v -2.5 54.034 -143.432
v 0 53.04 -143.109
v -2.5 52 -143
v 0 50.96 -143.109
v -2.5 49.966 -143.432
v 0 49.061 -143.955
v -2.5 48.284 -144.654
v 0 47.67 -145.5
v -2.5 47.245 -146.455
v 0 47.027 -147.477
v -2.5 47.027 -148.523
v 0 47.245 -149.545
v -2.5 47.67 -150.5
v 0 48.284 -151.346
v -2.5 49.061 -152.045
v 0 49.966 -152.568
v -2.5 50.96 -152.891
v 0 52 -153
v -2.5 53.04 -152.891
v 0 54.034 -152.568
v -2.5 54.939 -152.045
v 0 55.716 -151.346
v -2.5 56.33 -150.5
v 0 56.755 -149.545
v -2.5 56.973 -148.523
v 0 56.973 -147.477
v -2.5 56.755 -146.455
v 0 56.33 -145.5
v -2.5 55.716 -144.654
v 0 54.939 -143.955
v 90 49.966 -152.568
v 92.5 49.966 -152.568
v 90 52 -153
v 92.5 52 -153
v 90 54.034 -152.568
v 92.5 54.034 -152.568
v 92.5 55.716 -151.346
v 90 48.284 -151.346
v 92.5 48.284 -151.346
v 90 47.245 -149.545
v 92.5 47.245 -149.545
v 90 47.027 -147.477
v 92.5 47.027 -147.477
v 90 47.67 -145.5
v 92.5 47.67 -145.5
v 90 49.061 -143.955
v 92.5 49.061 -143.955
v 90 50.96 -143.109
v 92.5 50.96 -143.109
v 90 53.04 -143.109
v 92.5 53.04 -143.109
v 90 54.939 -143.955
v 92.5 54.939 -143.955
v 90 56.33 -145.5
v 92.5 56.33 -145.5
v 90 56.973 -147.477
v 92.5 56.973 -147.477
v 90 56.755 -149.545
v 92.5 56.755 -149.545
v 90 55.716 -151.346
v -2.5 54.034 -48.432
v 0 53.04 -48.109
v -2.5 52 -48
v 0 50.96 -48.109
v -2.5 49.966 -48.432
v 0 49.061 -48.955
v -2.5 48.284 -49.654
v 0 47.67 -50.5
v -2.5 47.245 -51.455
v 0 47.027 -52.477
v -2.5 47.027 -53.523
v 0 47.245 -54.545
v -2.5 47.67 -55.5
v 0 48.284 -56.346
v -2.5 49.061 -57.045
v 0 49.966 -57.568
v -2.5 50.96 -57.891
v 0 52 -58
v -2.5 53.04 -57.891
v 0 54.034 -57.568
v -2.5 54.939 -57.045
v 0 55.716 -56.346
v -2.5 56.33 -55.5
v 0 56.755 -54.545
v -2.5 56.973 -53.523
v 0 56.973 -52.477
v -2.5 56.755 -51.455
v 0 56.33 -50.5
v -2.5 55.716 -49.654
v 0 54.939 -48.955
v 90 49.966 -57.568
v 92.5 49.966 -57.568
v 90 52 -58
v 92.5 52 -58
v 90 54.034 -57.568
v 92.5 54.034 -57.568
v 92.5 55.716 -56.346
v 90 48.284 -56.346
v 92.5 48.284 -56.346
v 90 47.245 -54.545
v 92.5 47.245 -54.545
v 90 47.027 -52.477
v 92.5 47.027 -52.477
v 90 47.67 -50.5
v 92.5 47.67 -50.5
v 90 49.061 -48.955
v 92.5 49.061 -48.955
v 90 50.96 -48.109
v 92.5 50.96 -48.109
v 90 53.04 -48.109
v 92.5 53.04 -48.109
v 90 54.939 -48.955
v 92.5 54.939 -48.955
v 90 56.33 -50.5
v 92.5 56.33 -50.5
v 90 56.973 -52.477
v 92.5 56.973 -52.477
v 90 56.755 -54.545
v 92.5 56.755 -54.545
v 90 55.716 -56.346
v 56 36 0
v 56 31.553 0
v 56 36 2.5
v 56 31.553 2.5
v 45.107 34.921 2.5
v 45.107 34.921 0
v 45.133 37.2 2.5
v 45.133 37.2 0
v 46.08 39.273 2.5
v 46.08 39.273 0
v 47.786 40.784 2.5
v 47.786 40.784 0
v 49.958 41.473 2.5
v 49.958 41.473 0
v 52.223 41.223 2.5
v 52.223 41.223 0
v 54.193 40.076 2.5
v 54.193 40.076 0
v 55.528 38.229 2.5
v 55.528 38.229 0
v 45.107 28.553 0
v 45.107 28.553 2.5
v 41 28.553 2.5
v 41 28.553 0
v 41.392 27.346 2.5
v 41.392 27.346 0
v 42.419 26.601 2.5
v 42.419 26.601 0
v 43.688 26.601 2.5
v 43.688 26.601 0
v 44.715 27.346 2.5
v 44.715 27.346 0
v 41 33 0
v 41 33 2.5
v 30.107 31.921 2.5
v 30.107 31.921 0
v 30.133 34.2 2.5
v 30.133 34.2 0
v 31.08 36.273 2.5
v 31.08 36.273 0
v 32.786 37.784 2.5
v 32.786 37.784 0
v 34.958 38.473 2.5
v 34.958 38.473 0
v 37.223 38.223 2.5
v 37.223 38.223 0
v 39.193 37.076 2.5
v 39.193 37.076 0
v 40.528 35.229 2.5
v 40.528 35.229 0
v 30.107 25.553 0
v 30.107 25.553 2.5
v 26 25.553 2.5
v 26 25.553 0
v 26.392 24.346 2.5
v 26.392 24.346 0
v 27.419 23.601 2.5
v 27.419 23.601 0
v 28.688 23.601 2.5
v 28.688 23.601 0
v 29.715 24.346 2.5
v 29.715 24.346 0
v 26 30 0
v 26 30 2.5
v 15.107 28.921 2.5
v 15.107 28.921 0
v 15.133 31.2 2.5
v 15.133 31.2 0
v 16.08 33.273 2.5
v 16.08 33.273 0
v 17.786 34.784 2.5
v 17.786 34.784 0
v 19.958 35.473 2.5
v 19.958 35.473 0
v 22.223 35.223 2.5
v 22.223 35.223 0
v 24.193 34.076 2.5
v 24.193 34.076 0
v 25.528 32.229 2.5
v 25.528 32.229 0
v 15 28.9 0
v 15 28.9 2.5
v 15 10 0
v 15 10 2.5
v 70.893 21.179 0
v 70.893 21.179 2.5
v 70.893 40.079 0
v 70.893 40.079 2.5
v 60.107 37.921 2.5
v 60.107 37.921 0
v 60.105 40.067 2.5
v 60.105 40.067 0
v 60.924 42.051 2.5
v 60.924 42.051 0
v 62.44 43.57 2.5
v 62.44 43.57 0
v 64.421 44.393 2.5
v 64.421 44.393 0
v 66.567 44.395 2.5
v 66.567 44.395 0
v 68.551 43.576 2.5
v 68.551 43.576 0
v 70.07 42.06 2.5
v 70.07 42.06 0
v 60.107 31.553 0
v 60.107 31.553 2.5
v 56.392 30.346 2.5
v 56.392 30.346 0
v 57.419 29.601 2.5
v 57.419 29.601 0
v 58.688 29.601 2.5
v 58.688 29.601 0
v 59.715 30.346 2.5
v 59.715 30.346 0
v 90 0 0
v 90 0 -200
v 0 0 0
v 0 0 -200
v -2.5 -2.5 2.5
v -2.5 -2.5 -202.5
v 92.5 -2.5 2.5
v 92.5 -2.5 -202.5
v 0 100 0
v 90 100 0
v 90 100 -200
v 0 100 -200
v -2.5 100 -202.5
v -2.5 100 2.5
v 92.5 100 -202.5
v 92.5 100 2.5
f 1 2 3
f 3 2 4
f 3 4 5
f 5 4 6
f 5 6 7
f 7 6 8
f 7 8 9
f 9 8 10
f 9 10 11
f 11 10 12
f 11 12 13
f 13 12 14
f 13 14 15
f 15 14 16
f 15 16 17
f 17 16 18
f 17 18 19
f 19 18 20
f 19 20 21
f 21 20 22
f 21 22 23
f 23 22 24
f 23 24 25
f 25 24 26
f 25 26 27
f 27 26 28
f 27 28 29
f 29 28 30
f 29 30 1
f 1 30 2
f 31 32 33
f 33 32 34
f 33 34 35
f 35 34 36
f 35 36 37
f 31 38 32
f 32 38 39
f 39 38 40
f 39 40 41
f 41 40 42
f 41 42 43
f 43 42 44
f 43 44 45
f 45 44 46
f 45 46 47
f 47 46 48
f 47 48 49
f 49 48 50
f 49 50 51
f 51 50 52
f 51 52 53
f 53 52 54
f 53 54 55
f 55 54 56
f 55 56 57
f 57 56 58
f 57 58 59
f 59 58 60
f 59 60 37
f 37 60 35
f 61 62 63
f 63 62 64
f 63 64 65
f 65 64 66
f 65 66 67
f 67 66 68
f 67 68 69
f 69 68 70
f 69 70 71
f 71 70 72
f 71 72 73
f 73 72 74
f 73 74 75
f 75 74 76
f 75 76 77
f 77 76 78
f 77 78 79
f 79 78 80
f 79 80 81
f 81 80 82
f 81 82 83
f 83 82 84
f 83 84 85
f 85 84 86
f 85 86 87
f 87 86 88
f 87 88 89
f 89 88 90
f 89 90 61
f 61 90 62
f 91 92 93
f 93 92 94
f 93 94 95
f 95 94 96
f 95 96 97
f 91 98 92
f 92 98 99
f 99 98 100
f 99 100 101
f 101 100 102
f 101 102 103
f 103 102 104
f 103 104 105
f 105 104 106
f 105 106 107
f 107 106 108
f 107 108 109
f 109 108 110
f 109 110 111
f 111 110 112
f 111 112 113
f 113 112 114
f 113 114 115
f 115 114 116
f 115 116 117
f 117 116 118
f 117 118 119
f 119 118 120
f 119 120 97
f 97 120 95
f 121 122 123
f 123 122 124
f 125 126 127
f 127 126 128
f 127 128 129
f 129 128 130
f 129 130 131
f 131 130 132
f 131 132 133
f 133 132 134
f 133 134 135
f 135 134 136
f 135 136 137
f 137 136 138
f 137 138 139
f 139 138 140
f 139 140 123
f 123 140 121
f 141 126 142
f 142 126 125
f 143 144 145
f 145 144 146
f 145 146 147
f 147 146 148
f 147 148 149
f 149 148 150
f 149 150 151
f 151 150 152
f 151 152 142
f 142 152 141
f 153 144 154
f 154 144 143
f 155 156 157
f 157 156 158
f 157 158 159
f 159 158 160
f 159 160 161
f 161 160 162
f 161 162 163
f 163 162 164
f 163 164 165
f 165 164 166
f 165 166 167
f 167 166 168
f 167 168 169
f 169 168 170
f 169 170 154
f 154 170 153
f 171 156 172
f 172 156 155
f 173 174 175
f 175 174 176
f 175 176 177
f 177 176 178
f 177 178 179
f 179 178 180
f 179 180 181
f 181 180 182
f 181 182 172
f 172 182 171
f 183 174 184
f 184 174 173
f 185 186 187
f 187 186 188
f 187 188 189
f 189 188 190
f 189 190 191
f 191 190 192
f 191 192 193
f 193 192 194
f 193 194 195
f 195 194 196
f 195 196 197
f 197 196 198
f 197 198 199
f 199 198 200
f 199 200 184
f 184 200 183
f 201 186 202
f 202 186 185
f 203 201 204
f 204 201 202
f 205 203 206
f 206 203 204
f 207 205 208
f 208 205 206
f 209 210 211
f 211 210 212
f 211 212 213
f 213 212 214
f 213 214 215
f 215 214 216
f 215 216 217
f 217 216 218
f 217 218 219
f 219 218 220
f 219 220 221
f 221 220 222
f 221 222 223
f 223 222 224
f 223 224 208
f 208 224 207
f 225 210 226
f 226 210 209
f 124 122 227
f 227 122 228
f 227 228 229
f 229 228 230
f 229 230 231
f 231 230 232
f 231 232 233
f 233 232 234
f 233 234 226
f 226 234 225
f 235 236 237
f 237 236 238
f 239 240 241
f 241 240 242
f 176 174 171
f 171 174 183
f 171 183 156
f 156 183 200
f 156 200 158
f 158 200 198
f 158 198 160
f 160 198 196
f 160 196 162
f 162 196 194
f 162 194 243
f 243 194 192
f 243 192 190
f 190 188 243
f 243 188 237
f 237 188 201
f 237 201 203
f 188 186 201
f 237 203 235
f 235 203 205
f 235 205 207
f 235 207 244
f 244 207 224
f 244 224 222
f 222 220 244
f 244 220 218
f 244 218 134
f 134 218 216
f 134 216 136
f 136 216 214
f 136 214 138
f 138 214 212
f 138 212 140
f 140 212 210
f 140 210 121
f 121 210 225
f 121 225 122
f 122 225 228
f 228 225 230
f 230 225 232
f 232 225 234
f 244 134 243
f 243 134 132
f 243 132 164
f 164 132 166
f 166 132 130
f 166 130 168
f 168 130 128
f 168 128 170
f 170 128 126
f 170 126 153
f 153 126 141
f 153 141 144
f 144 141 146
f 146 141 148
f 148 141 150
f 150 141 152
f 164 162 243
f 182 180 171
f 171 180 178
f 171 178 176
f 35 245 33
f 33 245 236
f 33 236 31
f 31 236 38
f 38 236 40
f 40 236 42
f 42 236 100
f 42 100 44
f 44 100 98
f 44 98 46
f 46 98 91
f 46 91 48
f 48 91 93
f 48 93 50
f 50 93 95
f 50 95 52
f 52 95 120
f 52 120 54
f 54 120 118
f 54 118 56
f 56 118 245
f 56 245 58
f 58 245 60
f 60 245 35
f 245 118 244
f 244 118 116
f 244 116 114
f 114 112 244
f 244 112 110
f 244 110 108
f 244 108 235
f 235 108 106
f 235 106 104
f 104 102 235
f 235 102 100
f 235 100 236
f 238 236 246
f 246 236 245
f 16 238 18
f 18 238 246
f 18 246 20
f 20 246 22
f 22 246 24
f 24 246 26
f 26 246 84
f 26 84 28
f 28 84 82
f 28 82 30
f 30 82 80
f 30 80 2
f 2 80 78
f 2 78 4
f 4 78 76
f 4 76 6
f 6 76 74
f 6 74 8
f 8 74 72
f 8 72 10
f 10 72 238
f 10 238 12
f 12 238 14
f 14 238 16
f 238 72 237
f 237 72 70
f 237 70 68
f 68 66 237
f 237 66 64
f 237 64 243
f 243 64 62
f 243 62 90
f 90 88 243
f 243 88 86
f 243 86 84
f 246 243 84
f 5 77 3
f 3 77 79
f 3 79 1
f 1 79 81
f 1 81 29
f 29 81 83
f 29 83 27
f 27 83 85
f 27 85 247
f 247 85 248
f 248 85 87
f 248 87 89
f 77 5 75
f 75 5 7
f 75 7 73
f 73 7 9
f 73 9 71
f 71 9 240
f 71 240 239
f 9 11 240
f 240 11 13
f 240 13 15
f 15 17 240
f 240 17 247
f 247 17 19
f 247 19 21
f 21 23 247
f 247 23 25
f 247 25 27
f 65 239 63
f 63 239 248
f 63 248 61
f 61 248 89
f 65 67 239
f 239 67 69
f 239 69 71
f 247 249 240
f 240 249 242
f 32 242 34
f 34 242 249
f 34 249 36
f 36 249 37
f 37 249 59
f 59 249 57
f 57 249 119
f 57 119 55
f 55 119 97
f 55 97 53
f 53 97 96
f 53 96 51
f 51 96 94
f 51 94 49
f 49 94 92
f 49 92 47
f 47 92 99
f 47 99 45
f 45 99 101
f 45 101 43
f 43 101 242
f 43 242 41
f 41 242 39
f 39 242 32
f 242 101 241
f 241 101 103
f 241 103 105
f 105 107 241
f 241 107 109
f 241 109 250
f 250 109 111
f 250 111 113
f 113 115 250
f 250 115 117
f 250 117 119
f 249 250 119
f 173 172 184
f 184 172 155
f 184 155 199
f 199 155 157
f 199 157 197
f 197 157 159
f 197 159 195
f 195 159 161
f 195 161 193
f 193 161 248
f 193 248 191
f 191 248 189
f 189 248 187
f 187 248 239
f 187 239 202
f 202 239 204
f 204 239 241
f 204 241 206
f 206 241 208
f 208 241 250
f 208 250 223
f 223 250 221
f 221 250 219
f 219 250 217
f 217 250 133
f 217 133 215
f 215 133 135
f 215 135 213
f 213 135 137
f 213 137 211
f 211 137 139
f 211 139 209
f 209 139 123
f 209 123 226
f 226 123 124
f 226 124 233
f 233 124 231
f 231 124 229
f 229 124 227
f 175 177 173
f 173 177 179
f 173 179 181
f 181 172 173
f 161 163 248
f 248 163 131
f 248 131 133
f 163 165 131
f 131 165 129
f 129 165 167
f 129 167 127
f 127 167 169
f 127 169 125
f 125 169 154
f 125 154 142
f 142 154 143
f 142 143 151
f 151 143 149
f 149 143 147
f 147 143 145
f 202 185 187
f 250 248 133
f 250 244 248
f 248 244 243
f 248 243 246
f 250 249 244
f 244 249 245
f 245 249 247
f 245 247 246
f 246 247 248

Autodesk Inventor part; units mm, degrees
ref_plane "YZ Plane" through (0, 0, 0) normal (1, 0, 0) x (0, 1, 0)
ref_plane "XZ Plane" through (0, 0, 0) normal (0, 1, 0) x (-1, 0, 0)
ref_plane "XY Plane" through (0, 0, 0) normal (0, 0, 1) x (1, 0, 0)
sketch "Sketch1" plane through (0, 0, 0) normal (0, 1, 0) x (-1, 0, 0)
  line L0 (0, 0) -> (-90, 0)
  line L1 (-90, 0) -> (-90, -200)
  line L2 (-90, -200) -> (0, -200)
  line L3 (0, -200) -> (0, 0)
  line L4 (2.5, -202.5) -> (-92.5, -202.5)
  line L5 (-92.5, -202.5) -> (-92.5, 2.5)
  line L6 (-92.5, 2.5) -> (2.5, 2.5)
  line L7 (2.5, 2.5) -> (2.5, -202.5)
  line L8 (2.5, -202.5) -> (-92.5, 2.5) construction
  line L9 (-92.5, -202.5) -> (2.5, 2.5) construction
  point P0 (-45, -100)
  dimension "d0" = 90
  dimension "d1" = 200
  dimension "d2" = 95
  dimension "d3" = 205
extrude "Extrusion1" add sketch "Sketch1" along normal blind 100
sketch "Sketch2" plane through (0, 0, 0) normal (0, -1, 0) x (1, 0, 0)
  line L0 (92.5, 2.5) -> (-2.5, 2.5)
  line L1 (-2.5, 2.5) -> (-2.5, -202.5)
  line L2 (-2.5, -202.5) -> (92.5, -202.5)
  line L3 (92.5, -202.5) -> (92.5, 2.5)
  point P0 (0, 0)
extrude "Extrusion2" add sketch "Sketch2" along normal blind 2.5
sketch "Sketch3" plane through (-2.5, 100, 2.5) normal (0, 0, 1) x (1, 0, 0)
  line L0 (2.5, -100) -> (17.5, -100)
  line L1 (92.5, -100) -> (2.5, -100) projected
  line L2 (17.5, -100) -> (17.5, -90)
  line L3 (17.5, -90) -> (77.5, -90)
  line L4 (77.5, -90) -> (77.5, -78)
  line L5 (77.5, -78) -> (17.5, -90)
  line L6 (17.5, -90) -> (17.5, -80)
  line L7 (17.5, -80) -> (17.5, -70)
  line L8 (17.5, -70) -> (23, -70)
  circle A0 centre (23, -70) radius 5.5
  line L9 (28.5, -70) -> (28.5, -76.5)
  line L10 (96.033, -55.3934) -> (23, -70)
  line L11 (17.6068, -71.0786) -> (17.5, -71.1)
  line L12 (23, -70) -> (38, -70)
  line L13 (38, -70) -> (38, -67)
  circle A1 centre (38, -67) radius 5.5
  line L14 (38, -67) -> (53, -67)
  line L15 (53, -67) -> (53, -64)
  line L16 (53, -64) -> (68, -64)
  line L17 (68, -64) -> (68, -61)
  circle A2 centre (53, -64) radius 5.5
  circle A3 centre (68, -61) radius 5.5
  line L18 (32.6068, -68.0786) -> (32.6068, -76.5)
  line L19 (43.5, -67) -> (43.5, -73.5)
  line L20 (47.6068, -65.0786) -> (47.6068, -73.5)
  line L21 (58.5, -64) -> (58.5, -70.5)
  line L22 (62.6068, -62.0786) -> (62.6068, -70.5)
  line L23 (73.3932, -59.9214) -> (73.3932, -78.8214)
  line L24 (28.5, -76.5) -> (32.6068, -76.5)
  line L25 (43.5, -73.5) -> (47.6068, -73.5)
  line L26 (58.5, -70.5) -> (62.6068, -70.5)
  circle A4 centre (30.5534, -74.4466) radius 2.0534
  circle A5 centre (45.5534, -71.4466) radius 2.0534
  circle A6 centre (60.5534, -68.4466) radius 2.0534
  point P0 (32.6068, -74.4466)
  point P1 (28.5, -74.4466)
  point P2 (62.6068, -68.4466)
  point P3 (58.5, -68.4466)
  point P4 (47.6068, -71.4466)
  point P5 (43.5, -71.4466)
  dimension "d9" = 15
  dimension "d10" = 10
  dimension "d11" = 90
  dimension "d12" = 60
  dimension "d13" = 12
  dimension "d14" = 10
  dimension "d15" = 10
  dimension "d16" = 5.5
  dimension "d17" = 6.5
  dimension "d18" = 15
  dimension "d19" = 11
  dimension "d20" = 15
  dimension "d21" = 15
  dimension "d22" = 11
  dimension "d23" = 11
  dimension "d24" = 6.5
  dimension "d25" = 6.5
extrude "Extrusion3" cut sketch "Sketch3" against normal blind 15 contours L6 L7 L11 A0 L9 L24 L18 L12 A1 L19 L25 L20 L14 A2 L21 L26 L22 L16 A3 L23 L5 | A3 L16 L17 L10 L23 | A3 L10 L17 L16 | L16 L22 A3 | L10 A3 | A0 L10 L8 | L8 L12 A0 | L10 A0 L12 | A2 L14 L15 L16 | L16 L10 A2 | L22 L26 A6 | L10 A2 | A1 L10 | L10 L13 L12 A1 | A1 L12 L18 | A4 L24 L9 | L15 L14 A2 L10 | L14 L20 A2 | A6 L26 L21 | L14 A1 L12 L13 | L10 A1 L14 | L18 L24 A4 | L20 L25 A5 | A5 L25 L19
sketch "Sketch4" plane through (-2.5, 100, -202.5) normal (-1, 0, 0) x (0, 0, 1)
  line L0 (202.5, -100) -> (2.5, -100) projected
  line L1 (2.5, -100) -> (2.5, -90)
  line L2 (2.5, -100) -> (2.5, 0) projected
  line L3 (2.5, -90) -> (54.5, -90)
  line L4 (54.5, -90) -> (54.5, -48)
  circle A0 centre (54.5, -48) radius 5
  line L5 (54.5, -48) -> (149.5, -48)
  circle A1 centre (149.5, -48) radius 5
  dimension "d28" = 10
  dimension "d29" = 52
  dimension "d30" = 42
  dimension "d31" = 10
  dimension "d32" = 95
  dimension "d33" = 10
extrude "Extrusion4" cut sketch "Sketch4" against normal through all
equation "\"d26\" = d20"
properties part number "Box"
